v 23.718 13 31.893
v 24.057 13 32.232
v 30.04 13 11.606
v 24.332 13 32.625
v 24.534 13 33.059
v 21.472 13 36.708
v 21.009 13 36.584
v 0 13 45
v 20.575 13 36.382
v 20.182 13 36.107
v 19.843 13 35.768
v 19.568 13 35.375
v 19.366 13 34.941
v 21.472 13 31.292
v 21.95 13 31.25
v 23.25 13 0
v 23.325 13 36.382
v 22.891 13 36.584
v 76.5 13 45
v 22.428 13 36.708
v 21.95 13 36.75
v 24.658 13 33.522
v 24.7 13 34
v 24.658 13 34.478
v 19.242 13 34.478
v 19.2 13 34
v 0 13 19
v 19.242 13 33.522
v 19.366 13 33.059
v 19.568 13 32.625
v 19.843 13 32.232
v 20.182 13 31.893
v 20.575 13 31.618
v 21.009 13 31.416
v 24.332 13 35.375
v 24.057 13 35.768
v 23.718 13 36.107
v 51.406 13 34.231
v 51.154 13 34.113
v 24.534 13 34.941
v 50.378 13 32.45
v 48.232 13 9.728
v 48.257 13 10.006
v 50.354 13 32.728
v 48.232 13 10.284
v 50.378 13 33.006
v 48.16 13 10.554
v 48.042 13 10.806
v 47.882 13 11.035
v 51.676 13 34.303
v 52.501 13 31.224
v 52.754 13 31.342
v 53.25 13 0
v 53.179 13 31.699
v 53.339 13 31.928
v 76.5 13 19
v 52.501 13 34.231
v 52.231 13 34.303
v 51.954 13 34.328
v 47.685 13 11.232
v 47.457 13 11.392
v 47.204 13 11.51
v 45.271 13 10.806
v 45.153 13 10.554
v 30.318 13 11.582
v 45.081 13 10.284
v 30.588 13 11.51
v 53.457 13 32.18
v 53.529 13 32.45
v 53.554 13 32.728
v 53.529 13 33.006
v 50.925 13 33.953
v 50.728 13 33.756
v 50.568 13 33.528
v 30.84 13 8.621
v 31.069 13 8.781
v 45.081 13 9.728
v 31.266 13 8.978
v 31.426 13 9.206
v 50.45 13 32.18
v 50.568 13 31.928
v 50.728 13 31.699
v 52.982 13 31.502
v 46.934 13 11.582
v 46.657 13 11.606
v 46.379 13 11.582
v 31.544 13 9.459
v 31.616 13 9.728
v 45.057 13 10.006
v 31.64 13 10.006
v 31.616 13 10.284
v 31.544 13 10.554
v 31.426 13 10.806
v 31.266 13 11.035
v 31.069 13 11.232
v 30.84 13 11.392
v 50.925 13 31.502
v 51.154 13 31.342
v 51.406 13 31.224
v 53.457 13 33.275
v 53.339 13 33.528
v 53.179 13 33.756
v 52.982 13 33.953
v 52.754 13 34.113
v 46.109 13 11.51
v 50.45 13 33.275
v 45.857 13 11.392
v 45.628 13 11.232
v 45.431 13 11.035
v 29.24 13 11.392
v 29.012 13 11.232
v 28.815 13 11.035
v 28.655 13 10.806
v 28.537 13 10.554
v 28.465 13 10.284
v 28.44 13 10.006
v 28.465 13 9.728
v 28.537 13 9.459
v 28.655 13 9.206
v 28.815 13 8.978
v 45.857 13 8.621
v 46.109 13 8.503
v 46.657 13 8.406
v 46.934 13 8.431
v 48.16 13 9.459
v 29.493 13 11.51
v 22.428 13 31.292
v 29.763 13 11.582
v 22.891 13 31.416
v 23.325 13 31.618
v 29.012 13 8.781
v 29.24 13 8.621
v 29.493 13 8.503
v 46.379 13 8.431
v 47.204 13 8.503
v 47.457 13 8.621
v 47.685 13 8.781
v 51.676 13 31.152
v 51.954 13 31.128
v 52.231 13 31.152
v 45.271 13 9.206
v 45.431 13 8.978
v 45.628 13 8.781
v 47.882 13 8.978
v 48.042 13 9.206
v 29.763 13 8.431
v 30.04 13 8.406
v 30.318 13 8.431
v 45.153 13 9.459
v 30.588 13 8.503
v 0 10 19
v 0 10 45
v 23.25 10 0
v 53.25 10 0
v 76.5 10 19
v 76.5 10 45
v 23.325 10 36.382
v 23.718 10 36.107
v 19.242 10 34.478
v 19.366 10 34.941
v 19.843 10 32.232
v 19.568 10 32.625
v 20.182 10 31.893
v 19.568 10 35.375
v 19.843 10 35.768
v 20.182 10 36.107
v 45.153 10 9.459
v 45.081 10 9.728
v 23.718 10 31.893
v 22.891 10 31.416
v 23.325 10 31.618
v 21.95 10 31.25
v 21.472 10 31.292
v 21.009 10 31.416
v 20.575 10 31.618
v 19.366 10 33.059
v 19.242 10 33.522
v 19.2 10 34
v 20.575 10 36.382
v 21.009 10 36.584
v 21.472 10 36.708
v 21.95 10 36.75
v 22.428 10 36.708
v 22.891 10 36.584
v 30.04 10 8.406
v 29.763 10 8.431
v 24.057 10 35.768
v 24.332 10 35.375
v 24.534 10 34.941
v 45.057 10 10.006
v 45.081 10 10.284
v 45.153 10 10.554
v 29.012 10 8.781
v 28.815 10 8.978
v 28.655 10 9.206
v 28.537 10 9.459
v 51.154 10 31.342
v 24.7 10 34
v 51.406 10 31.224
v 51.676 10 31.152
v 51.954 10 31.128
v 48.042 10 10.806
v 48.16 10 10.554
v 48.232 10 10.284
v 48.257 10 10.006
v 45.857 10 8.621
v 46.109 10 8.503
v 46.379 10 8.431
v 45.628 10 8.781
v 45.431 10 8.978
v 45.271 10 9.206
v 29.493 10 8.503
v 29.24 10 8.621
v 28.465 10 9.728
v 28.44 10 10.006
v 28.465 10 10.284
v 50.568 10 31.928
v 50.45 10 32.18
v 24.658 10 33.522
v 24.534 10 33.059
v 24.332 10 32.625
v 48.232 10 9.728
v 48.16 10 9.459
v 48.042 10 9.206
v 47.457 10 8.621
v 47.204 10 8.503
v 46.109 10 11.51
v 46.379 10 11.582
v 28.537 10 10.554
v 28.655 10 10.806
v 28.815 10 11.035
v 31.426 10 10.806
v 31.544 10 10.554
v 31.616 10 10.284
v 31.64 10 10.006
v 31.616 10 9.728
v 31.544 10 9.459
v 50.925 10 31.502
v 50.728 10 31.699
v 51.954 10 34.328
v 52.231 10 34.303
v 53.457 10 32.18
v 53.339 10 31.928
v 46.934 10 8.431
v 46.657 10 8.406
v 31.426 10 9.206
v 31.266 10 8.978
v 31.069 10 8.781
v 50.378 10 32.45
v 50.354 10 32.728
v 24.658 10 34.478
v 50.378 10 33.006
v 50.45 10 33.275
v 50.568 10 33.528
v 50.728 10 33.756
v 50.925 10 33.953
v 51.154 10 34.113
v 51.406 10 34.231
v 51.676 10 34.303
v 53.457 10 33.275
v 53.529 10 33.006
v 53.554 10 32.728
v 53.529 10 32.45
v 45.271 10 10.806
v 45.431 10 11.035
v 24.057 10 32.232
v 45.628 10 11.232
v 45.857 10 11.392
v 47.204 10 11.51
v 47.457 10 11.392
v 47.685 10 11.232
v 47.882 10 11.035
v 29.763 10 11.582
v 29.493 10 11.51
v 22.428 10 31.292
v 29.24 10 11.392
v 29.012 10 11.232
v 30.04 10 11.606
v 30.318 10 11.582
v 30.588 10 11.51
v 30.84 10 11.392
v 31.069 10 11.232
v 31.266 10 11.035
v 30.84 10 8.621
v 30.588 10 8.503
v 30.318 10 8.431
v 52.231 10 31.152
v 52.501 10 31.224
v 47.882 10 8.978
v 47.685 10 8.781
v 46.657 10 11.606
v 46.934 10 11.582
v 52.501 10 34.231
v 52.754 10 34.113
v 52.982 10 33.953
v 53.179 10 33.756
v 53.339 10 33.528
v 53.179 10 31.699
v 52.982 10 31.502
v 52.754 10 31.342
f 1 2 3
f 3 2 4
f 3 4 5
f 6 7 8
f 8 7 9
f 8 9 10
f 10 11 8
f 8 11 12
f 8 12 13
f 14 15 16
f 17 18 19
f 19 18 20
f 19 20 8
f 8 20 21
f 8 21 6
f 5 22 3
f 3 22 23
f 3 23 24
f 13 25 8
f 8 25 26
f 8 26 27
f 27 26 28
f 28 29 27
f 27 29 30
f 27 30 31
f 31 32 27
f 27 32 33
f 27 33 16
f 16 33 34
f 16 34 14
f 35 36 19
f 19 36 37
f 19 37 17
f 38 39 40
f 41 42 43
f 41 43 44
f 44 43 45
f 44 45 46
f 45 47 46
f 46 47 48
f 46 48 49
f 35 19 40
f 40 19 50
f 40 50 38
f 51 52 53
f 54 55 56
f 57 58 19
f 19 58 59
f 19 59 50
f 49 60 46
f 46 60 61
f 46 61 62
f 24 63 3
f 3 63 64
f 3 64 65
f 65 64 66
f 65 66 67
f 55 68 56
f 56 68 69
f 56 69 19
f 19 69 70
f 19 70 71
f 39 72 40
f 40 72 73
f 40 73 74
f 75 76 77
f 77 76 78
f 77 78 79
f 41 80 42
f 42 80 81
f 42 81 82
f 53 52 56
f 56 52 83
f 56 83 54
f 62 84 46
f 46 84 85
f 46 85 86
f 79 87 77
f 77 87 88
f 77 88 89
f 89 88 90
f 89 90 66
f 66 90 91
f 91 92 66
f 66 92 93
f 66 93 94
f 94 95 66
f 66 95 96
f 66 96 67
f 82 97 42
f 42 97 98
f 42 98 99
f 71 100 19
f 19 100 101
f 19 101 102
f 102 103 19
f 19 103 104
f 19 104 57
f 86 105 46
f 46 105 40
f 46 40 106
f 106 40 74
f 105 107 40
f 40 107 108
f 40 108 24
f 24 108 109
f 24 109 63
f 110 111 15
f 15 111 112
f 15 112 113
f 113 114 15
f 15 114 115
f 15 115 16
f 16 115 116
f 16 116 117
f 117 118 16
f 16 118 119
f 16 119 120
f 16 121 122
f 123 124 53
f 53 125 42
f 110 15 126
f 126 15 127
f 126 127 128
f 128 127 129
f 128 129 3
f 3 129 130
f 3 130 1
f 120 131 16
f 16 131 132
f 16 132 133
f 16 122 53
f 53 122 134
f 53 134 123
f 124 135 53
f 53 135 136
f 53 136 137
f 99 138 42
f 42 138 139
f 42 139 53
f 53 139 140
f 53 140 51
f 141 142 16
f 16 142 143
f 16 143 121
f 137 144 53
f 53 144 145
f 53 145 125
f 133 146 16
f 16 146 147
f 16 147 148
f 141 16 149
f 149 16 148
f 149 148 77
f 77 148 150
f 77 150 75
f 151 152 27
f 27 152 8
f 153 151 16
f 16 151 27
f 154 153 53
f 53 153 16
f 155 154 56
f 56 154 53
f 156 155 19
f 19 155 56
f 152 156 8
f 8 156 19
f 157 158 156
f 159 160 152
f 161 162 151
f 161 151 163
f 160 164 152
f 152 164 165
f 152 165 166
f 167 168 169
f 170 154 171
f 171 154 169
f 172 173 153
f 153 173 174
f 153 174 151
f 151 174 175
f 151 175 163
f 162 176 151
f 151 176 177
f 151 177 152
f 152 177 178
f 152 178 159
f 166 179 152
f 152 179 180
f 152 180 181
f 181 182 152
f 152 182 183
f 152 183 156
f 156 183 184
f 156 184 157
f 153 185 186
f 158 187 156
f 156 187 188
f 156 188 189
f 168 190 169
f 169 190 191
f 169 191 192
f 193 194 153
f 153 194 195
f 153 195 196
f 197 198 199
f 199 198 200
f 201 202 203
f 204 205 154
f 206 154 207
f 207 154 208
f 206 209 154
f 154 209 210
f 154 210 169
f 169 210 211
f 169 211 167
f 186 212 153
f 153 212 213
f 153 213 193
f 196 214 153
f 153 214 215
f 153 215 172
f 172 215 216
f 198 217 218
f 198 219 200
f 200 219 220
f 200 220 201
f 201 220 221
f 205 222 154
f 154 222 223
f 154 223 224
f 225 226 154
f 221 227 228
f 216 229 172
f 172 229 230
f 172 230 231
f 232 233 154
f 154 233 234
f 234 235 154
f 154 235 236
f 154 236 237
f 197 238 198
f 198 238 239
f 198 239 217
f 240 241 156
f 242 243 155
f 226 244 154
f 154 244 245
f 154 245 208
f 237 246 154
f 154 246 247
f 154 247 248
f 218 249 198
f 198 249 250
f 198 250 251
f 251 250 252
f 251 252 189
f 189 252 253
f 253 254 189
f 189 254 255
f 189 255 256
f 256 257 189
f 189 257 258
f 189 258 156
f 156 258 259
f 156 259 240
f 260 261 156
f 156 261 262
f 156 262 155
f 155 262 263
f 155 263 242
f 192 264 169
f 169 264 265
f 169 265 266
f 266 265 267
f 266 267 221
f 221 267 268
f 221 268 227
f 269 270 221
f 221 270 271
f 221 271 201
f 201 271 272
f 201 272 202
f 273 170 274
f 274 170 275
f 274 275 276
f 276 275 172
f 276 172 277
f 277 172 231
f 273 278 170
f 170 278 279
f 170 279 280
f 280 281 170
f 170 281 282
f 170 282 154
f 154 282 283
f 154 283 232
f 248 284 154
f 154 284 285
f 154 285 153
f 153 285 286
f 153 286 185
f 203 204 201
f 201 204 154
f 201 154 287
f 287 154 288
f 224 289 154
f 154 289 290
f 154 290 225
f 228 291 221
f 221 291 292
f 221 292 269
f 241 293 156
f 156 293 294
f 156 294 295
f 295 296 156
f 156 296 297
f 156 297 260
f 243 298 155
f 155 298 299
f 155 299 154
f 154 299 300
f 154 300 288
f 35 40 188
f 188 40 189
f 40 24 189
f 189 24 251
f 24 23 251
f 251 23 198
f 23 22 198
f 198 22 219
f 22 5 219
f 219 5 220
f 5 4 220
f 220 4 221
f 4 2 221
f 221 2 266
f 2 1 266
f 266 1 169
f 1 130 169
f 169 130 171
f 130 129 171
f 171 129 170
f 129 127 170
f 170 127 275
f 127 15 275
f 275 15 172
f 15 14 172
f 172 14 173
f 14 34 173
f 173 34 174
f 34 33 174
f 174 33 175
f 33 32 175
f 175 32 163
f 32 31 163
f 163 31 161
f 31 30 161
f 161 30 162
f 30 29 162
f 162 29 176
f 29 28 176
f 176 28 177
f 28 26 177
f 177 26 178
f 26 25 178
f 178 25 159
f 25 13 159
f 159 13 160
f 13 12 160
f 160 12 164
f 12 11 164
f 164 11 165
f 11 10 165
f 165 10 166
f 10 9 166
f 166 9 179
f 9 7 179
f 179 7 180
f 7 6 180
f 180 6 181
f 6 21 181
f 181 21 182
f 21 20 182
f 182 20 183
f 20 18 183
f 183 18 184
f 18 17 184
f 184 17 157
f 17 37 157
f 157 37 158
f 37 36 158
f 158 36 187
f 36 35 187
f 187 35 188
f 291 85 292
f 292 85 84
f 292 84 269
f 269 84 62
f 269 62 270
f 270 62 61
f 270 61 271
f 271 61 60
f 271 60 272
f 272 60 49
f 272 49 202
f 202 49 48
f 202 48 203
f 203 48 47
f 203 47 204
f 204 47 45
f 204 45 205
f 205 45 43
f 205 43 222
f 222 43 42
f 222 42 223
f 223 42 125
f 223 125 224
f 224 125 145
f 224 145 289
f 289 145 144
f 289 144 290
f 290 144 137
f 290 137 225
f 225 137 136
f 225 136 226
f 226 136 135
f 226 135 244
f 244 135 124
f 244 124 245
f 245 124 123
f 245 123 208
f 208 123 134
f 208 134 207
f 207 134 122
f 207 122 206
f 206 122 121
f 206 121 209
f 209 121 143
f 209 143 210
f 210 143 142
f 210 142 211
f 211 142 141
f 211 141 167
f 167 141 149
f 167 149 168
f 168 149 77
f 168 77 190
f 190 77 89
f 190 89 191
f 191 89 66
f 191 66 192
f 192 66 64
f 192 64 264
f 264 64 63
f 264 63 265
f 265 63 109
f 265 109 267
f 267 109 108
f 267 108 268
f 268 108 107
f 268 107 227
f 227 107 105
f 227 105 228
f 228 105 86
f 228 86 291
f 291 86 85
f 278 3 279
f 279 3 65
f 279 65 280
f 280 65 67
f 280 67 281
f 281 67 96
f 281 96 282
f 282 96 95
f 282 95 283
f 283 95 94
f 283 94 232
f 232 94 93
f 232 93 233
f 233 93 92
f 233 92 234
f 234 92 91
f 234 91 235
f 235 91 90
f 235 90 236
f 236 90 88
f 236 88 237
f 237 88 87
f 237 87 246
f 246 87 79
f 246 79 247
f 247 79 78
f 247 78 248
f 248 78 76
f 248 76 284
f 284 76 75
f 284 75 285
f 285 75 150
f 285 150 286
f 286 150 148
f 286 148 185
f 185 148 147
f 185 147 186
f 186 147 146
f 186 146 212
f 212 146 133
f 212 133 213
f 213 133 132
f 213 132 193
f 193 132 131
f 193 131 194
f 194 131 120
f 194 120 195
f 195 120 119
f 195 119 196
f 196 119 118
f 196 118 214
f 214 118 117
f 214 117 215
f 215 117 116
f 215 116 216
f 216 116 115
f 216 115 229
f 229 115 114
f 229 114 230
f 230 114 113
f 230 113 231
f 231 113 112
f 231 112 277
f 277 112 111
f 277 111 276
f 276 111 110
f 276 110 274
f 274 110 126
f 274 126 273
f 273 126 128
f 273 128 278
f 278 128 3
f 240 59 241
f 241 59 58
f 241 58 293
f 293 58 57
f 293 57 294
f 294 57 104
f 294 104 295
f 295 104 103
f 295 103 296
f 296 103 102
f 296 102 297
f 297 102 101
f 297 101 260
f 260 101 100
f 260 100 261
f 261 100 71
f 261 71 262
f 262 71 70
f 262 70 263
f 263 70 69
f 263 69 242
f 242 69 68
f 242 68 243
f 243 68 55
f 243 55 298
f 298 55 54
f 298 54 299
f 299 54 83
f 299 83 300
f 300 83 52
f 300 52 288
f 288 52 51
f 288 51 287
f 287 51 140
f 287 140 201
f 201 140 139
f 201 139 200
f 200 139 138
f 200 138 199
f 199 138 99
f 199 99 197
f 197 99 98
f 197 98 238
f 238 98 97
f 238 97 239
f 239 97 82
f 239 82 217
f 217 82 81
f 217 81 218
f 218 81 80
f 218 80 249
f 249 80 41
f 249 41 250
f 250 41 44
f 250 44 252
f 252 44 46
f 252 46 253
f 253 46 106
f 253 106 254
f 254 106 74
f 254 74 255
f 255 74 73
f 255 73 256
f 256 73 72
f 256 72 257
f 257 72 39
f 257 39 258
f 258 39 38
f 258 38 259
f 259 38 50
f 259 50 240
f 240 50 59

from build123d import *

# Parameters (mm, degrees)
BOSS_EXTRUDE1_DEPTH  = 3.000000492
CUT_EXTRUDE1_DEPTH   = 4.000000492
BOSS_EXTRUDE3_DEPTH  = 4.999998957
SKETCH14_R           = 2.583283714
CUT_EXTRUDE6_DEPTH   = 8
M3_CLEARANCE_HOLE2_D = 3.2
M3_CLEARANCE_HOLE3_D = 3.2


with BuildPart() as part:
    # Sketch1 → Boss-Extrude1 (new body)
    with BuildSketch(Plane(origin=(0, 13.000000268, 0), x_dir=(1, 0, 0), z_dir=(0, 1, 0))):
        Polygon((0, -45.000001788), (76.499998569, -45.000001788), (76.499998569, -19.000001252), (53.249999881, 0), (23.250000551, 0), (0, -19.000001252), align=None)
    extrude(amount=-BOSS_EXTRUDE1_DEPTH)

    # Sketch2 → Cut-Extrude1 (cut, through all)
    with BuildSketch(Plane.XZ.offset(-9.999999776)):
        Polygon((24.331569672, 35.374999046), (24.056620896, 35.767666996), (23.717667907, 36.106623709), (23.324999958, 36.381572485), (22.890556604, 36.584153771), (22.427532822, 36.70822084), (21.949999034, 36.74999997), (21.472468972, 36.70822084), (21.00944519, 36.584153771), (20.574999973, 36.381572485), (20.182333887, 36.106623709), (19.843377173, 35.767666996), (19.56843026, 35.374999046), (19.365845248, 34.940555692), (19.241780043, 34.47753191), (19.200000912, 34.000001848), (19.241780043, 33.52246806), (19.365845248, 33.059444278), (19.56843026, 32.625000924), (19.843377173, 32.2323367), (20.182333887, 31.893379986), (20.574999973, 31.618431211), (21.00944519, 31.415846199), (21.472468972, 31.291779131), (21.949999034, 31.25), (22.427532822, 31.291779131), (22.890556604, 31.415846199), (23.324999958, 31.618431211), (23.717667907, 31.893379986), (24.056620896, 32.2323367), (24.331569672, 32.625000924), (24.534154683, 33.059444278), (24.658221751, 33.52246806), (24.700000882, 34.000001848), (24.658221751, 34.47753191), (24.534154683, 34.940555692), align=None)
    extrude(amount=-CUT_EXTRUDE1_DEPTH, mode=Mode.SUBTRACT)

    # Sketch4 → Boss-Extrude3 (add)
    with BuildSketch(Plane(origin=(0, 13.000000268, 0), x_dir=(-1, 0, 0), z_dir=(0, 1, 0))):
        Polygon((-41.949994862, 10.347297415), (-41.919611394, 9.999999776), (-41.949994862, 9.652704), (-42.040225118, 9.315960109), (-42.18756035, 9.000001475), (-42.387522757, 8.714426309), (-42.634036392, 8.467912674), (-42.919609696, 8.267950267), (-43.235570192, 8.120615035), (-43.572314084, 8.030384779), (-43.919611722, 8.000001311), (-44.266905636, 8.030384779), (-44.603649527, 8.120615035), (-44.919610023, 8.267950267), (-45.205187052, 8.467912674), (-45.451700687, 8.714426309), (-45.651663095, 9.000001475), (-45.798994601, 9.315960109), (-45.889224857, 9.652704), (-45.91961205, 9.999999776), (-45.889224857, 10.347297415), (-45.798994601, 10.684041306), (-45.651663095, 10.99999994), (-45.451700687, 11.285575107), (-45.205187052, 11.532089673), (-44.919610023, 11.732051149), (-44.603649527, 11.87938638), (-44.266905636, 11.969616637), (-43.919611722, 12.000001036), (-43.572314084, 11.969616637), (-43.235570192, 11.87938638), (-42.919609696, 11.732051149), (-42.634036392, 11.532089673), (-42.387522757, 11.285575107), (-42.18756035, 10.99999994), (-42.040225118, 10.684041306), align=None)
    extrude(amount=BOSS_EXTRUDE3_DEPTH)

    # Sketch14 → Cut-Extrude6 (cut)
    with BuildSketch(Plane(origin=(0, 13.000000268, 0), x_dir=(1, 0, 0), z_dir=(0, 1, 0))):
        with Locations((43.972754788, -10.139500391)):
            Circle(SKETCH14_R)
    extrude(amount=CUT_EXTRUDE6_DEPTH, mode=Mode.SUBTRACT)

    # M3 Clearance Hole2 (through all)
    with Locations(Plane(origin=(0, 13.000000268, 0), x_dir=(1, 0, 0), z_dir=(0, 1, 0))):
        with Locations((30.040436258, -10.00628369), (46.656531008, -10.00628369)):
            Hole(M3_CLEARANCE_HOLE2_D / 2)

    # M3 Clearance Hole3 (through all)
    with Locations(Plane(origin=(0, 13.000000268, 0), x_dir=(1, 0, 0), z_dir=(0, 1, 0))):
        with Locations((51.953516863, -32.727697483)):
            Hole(M3_CLEARANCE_HOLE3_D / 2)


solid = part.part
